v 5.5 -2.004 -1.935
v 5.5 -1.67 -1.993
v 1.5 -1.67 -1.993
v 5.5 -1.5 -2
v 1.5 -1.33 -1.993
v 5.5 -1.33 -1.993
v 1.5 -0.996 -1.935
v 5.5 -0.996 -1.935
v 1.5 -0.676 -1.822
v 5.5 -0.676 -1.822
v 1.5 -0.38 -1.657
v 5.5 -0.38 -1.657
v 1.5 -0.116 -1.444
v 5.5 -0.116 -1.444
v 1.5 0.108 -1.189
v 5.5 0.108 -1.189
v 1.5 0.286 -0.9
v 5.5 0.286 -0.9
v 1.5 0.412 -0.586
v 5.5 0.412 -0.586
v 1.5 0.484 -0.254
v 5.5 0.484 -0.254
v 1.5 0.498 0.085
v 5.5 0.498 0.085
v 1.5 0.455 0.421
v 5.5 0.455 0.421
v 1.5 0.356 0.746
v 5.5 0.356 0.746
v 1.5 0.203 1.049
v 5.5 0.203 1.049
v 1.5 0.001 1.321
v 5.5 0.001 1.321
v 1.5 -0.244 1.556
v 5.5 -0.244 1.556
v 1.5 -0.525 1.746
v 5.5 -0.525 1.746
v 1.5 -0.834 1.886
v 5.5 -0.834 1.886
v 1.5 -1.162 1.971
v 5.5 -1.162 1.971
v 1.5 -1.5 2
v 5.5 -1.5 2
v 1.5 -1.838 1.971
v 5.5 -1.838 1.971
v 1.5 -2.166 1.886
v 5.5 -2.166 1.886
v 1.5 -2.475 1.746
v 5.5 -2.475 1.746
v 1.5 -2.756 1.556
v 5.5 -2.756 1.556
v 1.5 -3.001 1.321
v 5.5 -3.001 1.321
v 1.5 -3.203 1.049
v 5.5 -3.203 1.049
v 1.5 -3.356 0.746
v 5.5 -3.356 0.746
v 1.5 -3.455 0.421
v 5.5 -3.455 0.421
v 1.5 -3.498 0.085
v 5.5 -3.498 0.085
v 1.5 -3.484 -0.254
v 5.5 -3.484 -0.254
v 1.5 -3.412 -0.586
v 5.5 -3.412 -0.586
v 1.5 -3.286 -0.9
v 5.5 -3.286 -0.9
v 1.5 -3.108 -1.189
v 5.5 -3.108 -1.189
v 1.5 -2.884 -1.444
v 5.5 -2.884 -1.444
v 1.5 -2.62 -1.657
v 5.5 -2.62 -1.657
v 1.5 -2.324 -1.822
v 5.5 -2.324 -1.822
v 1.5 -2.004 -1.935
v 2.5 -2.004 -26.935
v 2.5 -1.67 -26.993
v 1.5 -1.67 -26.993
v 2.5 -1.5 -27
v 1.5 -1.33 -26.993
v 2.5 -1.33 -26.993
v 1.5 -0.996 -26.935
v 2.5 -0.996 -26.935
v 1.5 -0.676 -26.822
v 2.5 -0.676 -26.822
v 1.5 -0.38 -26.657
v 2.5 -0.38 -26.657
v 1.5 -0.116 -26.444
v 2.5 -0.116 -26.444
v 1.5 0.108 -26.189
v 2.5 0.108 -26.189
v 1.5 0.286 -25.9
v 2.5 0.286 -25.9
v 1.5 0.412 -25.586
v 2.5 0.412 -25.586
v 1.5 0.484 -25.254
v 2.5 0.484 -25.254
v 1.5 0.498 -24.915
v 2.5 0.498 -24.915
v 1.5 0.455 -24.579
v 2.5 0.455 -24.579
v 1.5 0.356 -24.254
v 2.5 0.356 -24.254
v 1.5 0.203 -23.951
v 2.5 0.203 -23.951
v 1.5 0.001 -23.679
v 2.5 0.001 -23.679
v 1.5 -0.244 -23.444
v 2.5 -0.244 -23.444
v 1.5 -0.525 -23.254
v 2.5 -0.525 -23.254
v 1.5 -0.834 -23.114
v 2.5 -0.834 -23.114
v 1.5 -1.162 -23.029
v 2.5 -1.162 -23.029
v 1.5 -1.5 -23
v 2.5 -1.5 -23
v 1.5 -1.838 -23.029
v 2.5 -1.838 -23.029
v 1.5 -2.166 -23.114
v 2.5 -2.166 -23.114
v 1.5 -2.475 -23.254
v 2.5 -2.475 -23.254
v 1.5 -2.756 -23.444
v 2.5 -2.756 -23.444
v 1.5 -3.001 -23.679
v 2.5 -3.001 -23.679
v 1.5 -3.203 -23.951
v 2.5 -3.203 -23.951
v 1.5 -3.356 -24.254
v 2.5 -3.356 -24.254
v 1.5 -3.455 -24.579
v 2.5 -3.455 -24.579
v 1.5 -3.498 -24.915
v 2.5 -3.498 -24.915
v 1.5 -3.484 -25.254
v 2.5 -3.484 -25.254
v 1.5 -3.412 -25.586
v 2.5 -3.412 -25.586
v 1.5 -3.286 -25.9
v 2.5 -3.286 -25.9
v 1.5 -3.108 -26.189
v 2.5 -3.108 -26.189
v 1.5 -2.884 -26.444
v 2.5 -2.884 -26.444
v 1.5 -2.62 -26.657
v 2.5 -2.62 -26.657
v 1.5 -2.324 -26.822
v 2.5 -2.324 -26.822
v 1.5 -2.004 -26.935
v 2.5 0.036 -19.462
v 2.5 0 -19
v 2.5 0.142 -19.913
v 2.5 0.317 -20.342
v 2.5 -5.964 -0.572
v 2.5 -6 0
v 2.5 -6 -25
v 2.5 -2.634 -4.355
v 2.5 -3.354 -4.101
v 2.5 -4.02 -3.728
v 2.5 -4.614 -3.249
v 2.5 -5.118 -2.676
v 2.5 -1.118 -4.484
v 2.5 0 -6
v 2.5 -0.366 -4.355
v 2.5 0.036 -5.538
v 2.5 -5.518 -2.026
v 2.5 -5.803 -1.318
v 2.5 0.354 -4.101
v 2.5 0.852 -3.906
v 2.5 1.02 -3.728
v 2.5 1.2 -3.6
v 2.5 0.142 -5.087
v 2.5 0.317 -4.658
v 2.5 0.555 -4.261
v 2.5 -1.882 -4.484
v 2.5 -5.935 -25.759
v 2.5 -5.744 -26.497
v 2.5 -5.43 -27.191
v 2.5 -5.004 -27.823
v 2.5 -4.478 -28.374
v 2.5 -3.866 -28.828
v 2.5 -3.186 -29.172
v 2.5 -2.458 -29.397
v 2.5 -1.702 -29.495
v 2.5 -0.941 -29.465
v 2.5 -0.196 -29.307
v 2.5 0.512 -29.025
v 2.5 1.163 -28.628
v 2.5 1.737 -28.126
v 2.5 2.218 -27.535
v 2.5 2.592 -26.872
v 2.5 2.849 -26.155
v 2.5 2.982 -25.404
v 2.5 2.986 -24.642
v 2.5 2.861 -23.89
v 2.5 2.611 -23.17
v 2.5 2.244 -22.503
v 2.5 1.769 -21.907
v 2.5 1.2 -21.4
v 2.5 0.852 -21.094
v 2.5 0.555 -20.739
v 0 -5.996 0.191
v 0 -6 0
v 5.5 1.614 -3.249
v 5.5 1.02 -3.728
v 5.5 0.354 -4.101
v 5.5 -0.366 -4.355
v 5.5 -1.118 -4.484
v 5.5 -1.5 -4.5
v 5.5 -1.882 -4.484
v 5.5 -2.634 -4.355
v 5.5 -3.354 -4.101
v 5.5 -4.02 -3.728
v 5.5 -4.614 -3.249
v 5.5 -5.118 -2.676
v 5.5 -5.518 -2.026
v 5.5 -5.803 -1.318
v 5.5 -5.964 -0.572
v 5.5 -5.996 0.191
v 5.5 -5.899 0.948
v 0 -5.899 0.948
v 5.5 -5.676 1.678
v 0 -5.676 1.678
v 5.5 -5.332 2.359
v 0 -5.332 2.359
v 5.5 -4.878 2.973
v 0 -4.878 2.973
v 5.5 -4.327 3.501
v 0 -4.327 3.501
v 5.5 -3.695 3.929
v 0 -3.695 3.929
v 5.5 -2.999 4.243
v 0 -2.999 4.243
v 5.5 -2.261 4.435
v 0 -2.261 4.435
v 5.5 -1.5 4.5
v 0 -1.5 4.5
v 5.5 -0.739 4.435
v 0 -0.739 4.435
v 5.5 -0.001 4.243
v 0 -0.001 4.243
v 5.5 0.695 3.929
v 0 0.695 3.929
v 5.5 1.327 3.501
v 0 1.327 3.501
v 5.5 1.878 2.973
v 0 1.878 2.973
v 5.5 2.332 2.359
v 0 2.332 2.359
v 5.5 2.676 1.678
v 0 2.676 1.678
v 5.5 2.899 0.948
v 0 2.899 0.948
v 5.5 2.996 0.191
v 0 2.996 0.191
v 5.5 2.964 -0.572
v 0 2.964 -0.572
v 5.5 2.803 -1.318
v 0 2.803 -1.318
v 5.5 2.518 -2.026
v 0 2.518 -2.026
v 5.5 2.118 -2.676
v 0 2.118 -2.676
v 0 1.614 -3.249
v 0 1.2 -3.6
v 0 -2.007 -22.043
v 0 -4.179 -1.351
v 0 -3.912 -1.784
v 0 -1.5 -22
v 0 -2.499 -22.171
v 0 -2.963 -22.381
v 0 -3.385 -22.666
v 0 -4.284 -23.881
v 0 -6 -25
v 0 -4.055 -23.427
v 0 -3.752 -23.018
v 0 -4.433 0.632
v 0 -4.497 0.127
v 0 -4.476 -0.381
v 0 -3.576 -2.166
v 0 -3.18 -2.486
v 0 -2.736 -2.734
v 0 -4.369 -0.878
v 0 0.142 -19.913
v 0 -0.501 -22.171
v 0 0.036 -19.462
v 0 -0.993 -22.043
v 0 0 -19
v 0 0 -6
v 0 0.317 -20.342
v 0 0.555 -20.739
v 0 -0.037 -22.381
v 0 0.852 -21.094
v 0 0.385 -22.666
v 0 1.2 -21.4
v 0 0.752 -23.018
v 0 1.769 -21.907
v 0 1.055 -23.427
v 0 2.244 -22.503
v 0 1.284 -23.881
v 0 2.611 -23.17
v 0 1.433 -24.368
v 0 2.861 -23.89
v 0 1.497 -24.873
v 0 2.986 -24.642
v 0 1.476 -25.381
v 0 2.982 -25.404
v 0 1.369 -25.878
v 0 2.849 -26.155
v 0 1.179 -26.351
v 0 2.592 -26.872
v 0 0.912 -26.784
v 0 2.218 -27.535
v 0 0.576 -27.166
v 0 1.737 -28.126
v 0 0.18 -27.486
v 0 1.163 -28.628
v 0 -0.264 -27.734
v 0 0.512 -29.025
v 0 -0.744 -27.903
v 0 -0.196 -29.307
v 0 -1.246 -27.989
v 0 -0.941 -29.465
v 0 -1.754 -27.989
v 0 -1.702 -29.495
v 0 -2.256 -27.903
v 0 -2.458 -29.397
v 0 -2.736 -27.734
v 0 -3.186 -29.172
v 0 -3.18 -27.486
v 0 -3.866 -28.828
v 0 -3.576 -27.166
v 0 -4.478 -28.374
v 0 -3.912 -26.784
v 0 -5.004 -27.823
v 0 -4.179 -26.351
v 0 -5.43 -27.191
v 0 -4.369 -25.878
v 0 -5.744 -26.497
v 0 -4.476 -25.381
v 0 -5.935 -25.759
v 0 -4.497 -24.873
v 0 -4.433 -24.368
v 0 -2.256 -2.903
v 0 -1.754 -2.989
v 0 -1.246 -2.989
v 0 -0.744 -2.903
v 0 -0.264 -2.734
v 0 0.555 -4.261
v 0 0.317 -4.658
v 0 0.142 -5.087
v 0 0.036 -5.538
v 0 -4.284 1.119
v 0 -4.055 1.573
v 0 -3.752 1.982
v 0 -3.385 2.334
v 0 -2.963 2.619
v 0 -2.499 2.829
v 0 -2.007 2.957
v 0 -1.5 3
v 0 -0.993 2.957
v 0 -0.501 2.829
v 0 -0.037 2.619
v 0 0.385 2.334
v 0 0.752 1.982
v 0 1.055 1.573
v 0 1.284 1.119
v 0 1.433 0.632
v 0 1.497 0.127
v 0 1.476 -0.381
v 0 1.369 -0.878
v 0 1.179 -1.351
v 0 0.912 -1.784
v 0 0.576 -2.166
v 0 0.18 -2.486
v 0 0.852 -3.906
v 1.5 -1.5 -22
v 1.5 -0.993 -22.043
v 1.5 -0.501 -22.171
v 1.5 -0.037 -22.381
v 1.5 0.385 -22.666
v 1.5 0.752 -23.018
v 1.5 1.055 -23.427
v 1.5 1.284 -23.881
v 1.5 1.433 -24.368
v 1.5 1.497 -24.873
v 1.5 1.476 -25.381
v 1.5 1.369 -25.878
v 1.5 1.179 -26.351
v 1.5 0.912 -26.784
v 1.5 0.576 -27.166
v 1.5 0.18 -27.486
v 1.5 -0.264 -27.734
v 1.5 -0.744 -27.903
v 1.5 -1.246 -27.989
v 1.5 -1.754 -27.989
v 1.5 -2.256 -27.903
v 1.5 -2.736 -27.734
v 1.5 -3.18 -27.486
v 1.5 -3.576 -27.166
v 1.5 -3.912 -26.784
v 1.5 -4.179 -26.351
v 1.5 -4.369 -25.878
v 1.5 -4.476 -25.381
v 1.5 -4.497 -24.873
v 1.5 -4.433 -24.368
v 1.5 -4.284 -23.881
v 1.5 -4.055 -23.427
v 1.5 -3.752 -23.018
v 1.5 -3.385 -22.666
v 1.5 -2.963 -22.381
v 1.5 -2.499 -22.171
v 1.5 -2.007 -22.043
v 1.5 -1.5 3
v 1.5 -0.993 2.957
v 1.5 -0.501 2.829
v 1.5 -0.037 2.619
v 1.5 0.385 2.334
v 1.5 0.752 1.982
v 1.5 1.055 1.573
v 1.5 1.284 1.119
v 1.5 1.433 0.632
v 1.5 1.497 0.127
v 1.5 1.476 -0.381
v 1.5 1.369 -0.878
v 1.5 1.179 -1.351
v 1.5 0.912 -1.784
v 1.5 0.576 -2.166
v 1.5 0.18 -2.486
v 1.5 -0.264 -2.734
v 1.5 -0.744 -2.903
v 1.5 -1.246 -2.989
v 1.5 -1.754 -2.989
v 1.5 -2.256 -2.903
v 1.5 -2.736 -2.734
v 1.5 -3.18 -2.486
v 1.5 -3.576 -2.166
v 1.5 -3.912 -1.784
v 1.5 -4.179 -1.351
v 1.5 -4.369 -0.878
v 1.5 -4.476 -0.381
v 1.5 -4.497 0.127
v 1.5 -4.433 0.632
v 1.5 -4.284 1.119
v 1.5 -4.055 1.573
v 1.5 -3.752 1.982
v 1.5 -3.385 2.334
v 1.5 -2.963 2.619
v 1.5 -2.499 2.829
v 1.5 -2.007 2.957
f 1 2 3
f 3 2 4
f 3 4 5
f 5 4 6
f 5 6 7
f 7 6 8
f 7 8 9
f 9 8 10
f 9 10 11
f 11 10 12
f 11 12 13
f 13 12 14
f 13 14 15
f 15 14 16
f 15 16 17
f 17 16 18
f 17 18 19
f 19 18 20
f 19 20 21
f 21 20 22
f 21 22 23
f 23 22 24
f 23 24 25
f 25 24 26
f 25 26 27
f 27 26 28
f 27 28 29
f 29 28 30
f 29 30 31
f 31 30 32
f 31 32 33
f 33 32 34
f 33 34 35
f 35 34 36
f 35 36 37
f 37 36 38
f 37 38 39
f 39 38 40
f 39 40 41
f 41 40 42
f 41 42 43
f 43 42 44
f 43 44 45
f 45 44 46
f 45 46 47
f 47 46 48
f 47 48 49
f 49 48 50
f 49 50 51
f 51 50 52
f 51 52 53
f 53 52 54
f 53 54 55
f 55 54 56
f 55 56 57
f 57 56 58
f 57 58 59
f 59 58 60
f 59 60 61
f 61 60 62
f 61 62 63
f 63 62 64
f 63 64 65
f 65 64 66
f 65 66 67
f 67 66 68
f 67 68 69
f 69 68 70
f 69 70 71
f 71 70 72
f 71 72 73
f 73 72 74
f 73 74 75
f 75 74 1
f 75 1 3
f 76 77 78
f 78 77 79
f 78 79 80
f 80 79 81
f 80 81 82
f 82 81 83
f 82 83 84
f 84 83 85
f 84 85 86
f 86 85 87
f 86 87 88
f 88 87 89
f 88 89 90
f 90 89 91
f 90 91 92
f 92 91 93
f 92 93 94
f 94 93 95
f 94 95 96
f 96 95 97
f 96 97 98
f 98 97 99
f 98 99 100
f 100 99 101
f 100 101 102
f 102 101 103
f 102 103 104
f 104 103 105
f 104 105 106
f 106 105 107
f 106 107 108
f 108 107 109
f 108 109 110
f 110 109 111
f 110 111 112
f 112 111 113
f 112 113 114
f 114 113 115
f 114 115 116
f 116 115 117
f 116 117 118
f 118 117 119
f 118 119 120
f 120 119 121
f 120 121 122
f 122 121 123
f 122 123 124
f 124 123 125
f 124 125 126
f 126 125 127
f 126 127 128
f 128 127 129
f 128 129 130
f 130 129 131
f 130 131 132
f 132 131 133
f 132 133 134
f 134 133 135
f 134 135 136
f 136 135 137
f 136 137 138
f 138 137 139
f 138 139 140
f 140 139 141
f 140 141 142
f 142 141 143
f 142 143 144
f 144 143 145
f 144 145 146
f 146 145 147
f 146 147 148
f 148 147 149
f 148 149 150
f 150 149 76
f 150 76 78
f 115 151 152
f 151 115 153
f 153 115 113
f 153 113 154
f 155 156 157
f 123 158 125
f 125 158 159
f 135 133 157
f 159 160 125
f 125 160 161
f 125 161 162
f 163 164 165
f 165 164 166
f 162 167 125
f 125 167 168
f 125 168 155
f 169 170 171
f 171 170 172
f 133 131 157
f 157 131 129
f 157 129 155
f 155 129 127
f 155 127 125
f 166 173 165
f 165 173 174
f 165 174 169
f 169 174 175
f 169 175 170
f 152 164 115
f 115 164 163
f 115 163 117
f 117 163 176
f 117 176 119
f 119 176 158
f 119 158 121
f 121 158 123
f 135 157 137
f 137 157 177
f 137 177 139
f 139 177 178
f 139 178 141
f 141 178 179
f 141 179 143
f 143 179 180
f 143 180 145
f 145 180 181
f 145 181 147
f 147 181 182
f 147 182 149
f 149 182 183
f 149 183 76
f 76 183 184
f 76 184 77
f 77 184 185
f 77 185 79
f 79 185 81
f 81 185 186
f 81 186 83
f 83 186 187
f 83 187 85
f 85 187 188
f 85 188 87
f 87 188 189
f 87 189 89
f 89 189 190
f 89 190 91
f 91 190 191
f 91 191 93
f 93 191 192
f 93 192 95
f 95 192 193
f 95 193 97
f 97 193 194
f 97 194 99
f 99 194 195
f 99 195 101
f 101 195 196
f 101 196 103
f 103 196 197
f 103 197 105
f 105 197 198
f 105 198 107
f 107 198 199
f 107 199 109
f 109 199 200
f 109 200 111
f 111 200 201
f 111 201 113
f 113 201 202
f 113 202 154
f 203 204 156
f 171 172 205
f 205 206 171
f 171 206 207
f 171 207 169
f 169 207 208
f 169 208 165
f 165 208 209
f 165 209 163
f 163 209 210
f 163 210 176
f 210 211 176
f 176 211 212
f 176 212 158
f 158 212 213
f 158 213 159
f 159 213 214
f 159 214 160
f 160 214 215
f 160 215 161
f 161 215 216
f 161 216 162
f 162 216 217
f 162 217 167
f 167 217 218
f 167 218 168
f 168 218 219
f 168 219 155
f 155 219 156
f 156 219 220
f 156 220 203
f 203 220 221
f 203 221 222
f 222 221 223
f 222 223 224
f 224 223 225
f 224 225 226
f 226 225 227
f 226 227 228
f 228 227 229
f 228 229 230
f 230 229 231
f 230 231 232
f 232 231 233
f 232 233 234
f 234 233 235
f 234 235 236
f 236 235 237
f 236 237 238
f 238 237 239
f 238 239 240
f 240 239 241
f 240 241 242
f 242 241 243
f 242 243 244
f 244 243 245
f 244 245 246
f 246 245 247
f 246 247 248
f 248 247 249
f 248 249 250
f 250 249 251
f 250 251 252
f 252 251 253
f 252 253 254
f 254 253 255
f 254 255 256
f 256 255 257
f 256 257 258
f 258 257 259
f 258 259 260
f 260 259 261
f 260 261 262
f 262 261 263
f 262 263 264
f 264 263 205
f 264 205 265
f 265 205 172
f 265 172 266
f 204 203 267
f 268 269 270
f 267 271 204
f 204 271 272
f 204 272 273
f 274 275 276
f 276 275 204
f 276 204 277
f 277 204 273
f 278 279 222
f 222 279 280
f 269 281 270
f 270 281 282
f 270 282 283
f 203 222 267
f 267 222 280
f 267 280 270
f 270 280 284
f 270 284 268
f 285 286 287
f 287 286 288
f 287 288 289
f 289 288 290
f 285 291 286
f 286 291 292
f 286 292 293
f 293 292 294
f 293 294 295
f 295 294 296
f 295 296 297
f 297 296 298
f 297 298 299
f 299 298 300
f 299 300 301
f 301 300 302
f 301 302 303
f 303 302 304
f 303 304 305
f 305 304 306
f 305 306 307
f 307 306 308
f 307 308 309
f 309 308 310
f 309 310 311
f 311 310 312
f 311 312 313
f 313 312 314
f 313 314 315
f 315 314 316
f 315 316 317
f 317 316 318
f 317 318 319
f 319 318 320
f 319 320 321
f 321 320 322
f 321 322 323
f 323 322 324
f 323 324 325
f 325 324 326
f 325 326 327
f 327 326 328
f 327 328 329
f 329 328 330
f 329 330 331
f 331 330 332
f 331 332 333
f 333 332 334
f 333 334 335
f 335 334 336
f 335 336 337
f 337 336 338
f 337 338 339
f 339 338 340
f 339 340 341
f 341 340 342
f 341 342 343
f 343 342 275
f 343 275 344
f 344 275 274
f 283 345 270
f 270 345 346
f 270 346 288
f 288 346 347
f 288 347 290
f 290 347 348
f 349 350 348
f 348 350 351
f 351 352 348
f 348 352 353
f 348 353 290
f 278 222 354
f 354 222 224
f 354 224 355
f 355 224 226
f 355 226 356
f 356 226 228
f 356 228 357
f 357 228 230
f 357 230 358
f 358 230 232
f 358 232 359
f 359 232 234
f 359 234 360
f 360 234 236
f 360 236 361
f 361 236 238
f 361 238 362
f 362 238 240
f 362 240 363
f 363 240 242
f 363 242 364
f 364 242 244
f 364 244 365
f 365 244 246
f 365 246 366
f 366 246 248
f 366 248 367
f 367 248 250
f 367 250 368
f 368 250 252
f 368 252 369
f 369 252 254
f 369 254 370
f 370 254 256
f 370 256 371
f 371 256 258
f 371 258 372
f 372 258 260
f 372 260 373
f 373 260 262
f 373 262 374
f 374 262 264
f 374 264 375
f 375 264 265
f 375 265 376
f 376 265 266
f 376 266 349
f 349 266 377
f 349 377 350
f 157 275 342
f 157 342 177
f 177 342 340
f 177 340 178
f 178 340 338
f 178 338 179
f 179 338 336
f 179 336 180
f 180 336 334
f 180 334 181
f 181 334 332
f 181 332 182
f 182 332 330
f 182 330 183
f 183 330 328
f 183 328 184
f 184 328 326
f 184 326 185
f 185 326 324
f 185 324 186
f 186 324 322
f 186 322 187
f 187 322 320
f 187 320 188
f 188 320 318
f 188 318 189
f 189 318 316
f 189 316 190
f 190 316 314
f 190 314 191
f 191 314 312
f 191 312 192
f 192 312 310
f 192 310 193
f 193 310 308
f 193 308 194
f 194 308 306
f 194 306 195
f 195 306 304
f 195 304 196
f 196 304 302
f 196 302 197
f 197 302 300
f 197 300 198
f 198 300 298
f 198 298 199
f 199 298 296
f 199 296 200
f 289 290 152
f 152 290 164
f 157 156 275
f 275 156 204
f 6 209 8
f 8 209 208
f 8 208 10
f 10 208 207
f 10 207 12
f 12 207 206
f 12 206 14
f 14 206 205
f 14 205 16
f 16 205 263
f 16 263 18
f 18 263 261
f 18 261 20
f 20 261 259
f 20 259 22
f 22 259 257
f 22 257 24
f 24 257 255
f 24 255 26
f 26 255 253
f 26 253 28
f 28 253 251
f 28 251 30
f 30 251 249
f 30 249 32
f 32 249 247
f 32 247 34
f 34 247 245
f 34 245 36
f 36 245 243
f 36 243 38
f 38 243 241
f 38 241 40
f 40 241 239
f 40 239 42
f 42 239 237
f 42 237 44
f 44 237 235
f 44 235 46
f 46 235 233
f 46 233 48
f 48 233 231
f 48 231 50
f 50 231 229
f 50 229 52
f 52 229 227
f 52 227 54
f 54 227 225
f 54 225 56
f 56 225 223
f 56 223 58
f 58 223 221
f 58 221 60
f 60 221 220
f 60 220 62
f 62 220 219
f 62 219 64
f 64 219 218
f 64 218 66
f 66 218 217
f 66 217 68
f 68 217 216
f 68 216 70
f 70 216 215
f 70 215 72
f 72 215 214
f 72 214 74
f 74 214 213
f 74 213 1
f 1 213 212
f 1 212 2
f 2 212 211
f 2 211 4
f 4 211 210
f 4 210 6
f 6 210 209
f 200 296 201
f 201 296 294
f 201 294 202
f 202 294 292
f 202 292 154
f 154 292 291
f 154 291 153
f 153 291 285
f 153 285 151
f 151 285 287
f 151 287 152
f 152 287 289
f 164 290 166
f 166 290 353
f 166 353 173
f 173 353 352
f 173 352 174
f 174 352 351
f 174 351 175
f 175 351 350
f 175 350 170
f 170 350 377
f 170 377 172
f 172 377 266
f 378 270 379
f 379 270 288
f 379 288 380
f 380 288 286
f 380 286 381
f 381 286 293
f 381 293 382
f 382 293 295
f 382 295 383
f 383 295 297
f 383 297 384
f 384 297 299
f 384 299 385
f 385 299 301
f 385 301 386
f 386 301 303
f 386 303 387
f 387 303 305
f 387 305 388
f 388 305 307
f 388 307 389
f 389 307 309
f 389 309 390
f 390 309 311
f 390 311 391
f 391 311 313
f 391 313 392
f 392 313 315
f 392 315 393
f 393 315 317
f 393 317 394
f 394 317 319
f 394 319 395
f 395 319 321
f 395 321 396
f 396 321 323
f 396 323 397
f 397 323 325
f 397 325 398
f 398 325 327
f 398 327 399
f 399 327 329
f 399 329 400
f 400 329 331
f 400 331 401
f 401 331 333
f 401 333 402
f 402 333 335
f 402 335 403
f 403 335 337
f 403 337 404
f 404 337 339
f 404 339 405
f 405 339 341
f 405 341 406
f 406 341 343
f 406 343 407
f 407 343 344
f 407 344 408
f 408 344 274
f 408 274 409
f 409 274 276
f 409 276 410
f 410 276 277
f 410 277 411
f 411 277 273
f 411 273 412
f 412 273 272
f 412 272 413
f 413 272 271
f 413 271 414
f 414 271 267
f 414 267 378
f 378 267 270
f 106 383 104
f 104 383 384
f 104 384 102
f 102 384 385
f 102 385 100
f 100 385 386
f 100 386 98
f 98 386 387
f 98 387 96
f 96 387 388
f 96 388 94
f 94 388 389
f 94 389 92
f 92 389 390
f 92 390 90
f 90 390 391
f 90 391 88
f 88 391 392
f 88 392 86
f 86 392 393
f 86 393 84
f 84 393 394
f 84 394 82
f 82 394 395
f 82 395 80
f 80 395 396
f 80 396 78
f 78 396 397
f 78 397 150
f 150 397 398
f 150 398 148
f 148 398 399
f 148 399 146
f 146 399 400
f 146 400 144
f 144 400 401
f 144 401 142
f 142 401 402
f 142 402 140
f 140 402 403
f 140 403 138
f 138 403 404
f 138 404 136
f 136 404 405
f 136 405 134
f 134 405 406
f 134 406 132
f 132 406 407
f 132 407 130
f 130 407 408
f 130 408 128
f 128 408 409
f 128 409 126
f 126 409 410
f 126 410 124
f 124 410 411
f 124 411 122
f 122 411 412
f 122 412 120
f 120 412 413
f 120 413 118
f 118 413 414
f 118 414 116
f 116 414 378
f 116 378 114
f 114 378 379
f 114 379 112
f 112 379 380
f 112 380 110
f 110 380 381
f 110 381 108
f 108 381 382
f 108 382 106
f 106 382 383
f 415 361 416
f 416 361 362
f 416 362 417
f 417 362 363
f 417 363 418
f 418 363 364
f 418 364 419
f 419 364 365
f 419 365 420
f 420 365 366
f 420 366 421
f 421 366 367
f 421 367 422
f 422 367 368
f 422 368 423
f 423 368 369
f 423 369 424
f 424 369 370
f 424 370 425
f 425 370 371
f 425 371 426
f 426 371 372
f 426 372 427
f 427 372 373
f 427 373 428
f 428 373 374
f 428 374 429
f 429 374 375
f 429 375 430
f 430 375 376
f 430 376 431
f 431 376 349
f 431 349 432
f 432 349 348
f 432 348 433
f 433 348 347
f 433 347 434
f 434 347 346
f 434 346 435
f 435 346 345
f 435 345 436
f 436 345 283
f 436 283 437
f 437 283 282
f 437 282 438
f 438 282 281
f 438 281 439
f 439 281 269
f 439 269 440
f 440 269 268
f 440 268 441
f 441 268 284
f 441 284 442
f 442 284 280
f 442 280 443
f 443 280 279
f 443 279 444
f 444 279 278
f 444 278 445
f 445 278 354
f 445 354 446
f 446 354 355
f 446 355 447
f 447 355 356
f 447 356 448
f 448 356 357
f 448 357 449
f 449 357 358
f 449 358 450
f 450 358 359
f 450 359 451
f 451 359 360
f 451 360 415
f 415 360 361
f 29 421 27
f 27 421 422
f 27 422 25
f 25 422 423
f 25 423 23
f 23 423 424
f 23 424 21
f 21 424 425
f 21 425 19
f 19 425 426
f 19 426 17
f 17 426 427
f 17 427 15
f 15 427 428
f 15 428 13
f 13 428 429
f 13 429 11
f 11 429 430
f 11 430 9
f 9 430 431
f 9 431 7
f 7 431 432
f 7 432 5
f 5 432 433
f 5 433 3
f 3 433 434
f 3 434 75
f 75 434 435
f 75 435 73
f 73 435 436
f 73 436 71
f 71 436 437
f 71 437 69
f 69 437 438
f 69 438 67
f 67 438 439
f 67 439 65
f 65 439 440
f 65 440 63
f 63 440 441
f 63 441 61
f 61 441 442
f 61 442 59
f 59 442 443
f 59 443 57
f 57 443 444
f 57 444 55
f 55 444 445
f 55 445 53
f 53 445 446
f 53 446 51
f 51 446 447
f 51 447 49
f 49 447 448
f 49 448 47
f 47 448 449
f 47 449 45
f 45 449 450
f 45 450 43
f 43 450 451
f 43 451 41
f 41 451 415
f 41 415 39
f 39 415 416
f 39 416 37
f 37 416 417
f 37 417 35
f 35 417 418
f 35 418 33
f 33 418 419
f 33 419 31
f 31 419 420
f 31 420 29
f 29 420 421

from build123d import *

# Parameters (mm, degrees)
SKETCH_1_R               = 4.5
SKETCH_1_W               = 25
SKETCH_1_H               = 6
EXTRUDE_1_DEPTH          = 2.5
EXTRUDE_START            = 2.5
SKETCH_1_5_R             = 4.5
EXTRUDE_3_DEPTH          = 3
CUT_EXTRUDE_2_DEPTH      = 31.602287496
CUT_EXTRUDE_2_DEPTH_BACK = 31.602287496
SKETCH_1_4_R             = 2
FILLET_1_R               = 3
SKETCH_2_R               = 3
CUT_EXTRUDE_3_DEPTH      = 1.5


with BuildPart() as part:
    # 草图1 → 凸台-拉伸1 (new body)
    with BuildSketch(Plane(origin=(0, 0, 0), x_dir=(0, 0, -1), z_dir=(1, 0, 0))):
        with Locations((0, -1.5)):
            Circle(SKETCH_1_R)
        with Locations((25, -1.5)):
            Circle(SKETCH_1_R)
        with Locations((12.5, -3)):
            Rectangle(SKETCH_1_W, SKETCH_1_H)
    extrude(amount=EXTRUDE_1_DEPTH)

    # 草图1<5> → 凸台-拉伸3 (add)
    with BuildSketch(Plane(origin=(0, 0, 0), x_dir=(0, 0, -1), z_dir=(1, 0, 0)).offset(EXTRUDE_START)):
        with Locations(Location((0, -1.5, 0), (0, 0, 270))):
            Circle(SKETCH_1_5_R)
    extrude(amount=EXTRUDE_3_DEPTH)

    # 草图1<4> → 切除-拉伸2 (cut, two sides: drawn at the far end of the back side and taken through both)
    with BuildSketch(Plane(origin=(0, 0, 0), x_dir=(0, 0, -1), z_dir=(1, 0, 0)).offset(-CUT_EXTRUDE_2_DEPTH_BACK)):
        with Locations((0, -1.5)):
            Circle(SKETCH_1_4_R)
        with Locations((25, -1.5)):
            Circle(SKETCH_1_4_R)
    extrude(amount=CUT_EXTRUDE_2_DEPTH + CUT_EXTRUDE_2_DEPTH_BACK, mode=Mode.SUBTRACT)

    # 圆角1
    fillet_1_edges = [part.edges().sort_by_distance(p)[0] for p in [
        (1.25, 0, -20.757359313),
        (1.25, 0, -4.242640687),
    ]]
    fillet(fillet_1_edges, radius=FILLET_1_R)

    # 草图2 → 切除-拉伸3 (cut)
    with BuildSketch(Plane.ZY):
        with Locations((-25, -1.5)):
            Circle(SKETCH_2_R)
        with Locations((0, -1.5)):
            Circle(SKETCH_2_R)
    extrude(amount=-CUT_EXTRUDE_3_DEPTH, mode=Mode.SUBTRACT)


solid = part.part
